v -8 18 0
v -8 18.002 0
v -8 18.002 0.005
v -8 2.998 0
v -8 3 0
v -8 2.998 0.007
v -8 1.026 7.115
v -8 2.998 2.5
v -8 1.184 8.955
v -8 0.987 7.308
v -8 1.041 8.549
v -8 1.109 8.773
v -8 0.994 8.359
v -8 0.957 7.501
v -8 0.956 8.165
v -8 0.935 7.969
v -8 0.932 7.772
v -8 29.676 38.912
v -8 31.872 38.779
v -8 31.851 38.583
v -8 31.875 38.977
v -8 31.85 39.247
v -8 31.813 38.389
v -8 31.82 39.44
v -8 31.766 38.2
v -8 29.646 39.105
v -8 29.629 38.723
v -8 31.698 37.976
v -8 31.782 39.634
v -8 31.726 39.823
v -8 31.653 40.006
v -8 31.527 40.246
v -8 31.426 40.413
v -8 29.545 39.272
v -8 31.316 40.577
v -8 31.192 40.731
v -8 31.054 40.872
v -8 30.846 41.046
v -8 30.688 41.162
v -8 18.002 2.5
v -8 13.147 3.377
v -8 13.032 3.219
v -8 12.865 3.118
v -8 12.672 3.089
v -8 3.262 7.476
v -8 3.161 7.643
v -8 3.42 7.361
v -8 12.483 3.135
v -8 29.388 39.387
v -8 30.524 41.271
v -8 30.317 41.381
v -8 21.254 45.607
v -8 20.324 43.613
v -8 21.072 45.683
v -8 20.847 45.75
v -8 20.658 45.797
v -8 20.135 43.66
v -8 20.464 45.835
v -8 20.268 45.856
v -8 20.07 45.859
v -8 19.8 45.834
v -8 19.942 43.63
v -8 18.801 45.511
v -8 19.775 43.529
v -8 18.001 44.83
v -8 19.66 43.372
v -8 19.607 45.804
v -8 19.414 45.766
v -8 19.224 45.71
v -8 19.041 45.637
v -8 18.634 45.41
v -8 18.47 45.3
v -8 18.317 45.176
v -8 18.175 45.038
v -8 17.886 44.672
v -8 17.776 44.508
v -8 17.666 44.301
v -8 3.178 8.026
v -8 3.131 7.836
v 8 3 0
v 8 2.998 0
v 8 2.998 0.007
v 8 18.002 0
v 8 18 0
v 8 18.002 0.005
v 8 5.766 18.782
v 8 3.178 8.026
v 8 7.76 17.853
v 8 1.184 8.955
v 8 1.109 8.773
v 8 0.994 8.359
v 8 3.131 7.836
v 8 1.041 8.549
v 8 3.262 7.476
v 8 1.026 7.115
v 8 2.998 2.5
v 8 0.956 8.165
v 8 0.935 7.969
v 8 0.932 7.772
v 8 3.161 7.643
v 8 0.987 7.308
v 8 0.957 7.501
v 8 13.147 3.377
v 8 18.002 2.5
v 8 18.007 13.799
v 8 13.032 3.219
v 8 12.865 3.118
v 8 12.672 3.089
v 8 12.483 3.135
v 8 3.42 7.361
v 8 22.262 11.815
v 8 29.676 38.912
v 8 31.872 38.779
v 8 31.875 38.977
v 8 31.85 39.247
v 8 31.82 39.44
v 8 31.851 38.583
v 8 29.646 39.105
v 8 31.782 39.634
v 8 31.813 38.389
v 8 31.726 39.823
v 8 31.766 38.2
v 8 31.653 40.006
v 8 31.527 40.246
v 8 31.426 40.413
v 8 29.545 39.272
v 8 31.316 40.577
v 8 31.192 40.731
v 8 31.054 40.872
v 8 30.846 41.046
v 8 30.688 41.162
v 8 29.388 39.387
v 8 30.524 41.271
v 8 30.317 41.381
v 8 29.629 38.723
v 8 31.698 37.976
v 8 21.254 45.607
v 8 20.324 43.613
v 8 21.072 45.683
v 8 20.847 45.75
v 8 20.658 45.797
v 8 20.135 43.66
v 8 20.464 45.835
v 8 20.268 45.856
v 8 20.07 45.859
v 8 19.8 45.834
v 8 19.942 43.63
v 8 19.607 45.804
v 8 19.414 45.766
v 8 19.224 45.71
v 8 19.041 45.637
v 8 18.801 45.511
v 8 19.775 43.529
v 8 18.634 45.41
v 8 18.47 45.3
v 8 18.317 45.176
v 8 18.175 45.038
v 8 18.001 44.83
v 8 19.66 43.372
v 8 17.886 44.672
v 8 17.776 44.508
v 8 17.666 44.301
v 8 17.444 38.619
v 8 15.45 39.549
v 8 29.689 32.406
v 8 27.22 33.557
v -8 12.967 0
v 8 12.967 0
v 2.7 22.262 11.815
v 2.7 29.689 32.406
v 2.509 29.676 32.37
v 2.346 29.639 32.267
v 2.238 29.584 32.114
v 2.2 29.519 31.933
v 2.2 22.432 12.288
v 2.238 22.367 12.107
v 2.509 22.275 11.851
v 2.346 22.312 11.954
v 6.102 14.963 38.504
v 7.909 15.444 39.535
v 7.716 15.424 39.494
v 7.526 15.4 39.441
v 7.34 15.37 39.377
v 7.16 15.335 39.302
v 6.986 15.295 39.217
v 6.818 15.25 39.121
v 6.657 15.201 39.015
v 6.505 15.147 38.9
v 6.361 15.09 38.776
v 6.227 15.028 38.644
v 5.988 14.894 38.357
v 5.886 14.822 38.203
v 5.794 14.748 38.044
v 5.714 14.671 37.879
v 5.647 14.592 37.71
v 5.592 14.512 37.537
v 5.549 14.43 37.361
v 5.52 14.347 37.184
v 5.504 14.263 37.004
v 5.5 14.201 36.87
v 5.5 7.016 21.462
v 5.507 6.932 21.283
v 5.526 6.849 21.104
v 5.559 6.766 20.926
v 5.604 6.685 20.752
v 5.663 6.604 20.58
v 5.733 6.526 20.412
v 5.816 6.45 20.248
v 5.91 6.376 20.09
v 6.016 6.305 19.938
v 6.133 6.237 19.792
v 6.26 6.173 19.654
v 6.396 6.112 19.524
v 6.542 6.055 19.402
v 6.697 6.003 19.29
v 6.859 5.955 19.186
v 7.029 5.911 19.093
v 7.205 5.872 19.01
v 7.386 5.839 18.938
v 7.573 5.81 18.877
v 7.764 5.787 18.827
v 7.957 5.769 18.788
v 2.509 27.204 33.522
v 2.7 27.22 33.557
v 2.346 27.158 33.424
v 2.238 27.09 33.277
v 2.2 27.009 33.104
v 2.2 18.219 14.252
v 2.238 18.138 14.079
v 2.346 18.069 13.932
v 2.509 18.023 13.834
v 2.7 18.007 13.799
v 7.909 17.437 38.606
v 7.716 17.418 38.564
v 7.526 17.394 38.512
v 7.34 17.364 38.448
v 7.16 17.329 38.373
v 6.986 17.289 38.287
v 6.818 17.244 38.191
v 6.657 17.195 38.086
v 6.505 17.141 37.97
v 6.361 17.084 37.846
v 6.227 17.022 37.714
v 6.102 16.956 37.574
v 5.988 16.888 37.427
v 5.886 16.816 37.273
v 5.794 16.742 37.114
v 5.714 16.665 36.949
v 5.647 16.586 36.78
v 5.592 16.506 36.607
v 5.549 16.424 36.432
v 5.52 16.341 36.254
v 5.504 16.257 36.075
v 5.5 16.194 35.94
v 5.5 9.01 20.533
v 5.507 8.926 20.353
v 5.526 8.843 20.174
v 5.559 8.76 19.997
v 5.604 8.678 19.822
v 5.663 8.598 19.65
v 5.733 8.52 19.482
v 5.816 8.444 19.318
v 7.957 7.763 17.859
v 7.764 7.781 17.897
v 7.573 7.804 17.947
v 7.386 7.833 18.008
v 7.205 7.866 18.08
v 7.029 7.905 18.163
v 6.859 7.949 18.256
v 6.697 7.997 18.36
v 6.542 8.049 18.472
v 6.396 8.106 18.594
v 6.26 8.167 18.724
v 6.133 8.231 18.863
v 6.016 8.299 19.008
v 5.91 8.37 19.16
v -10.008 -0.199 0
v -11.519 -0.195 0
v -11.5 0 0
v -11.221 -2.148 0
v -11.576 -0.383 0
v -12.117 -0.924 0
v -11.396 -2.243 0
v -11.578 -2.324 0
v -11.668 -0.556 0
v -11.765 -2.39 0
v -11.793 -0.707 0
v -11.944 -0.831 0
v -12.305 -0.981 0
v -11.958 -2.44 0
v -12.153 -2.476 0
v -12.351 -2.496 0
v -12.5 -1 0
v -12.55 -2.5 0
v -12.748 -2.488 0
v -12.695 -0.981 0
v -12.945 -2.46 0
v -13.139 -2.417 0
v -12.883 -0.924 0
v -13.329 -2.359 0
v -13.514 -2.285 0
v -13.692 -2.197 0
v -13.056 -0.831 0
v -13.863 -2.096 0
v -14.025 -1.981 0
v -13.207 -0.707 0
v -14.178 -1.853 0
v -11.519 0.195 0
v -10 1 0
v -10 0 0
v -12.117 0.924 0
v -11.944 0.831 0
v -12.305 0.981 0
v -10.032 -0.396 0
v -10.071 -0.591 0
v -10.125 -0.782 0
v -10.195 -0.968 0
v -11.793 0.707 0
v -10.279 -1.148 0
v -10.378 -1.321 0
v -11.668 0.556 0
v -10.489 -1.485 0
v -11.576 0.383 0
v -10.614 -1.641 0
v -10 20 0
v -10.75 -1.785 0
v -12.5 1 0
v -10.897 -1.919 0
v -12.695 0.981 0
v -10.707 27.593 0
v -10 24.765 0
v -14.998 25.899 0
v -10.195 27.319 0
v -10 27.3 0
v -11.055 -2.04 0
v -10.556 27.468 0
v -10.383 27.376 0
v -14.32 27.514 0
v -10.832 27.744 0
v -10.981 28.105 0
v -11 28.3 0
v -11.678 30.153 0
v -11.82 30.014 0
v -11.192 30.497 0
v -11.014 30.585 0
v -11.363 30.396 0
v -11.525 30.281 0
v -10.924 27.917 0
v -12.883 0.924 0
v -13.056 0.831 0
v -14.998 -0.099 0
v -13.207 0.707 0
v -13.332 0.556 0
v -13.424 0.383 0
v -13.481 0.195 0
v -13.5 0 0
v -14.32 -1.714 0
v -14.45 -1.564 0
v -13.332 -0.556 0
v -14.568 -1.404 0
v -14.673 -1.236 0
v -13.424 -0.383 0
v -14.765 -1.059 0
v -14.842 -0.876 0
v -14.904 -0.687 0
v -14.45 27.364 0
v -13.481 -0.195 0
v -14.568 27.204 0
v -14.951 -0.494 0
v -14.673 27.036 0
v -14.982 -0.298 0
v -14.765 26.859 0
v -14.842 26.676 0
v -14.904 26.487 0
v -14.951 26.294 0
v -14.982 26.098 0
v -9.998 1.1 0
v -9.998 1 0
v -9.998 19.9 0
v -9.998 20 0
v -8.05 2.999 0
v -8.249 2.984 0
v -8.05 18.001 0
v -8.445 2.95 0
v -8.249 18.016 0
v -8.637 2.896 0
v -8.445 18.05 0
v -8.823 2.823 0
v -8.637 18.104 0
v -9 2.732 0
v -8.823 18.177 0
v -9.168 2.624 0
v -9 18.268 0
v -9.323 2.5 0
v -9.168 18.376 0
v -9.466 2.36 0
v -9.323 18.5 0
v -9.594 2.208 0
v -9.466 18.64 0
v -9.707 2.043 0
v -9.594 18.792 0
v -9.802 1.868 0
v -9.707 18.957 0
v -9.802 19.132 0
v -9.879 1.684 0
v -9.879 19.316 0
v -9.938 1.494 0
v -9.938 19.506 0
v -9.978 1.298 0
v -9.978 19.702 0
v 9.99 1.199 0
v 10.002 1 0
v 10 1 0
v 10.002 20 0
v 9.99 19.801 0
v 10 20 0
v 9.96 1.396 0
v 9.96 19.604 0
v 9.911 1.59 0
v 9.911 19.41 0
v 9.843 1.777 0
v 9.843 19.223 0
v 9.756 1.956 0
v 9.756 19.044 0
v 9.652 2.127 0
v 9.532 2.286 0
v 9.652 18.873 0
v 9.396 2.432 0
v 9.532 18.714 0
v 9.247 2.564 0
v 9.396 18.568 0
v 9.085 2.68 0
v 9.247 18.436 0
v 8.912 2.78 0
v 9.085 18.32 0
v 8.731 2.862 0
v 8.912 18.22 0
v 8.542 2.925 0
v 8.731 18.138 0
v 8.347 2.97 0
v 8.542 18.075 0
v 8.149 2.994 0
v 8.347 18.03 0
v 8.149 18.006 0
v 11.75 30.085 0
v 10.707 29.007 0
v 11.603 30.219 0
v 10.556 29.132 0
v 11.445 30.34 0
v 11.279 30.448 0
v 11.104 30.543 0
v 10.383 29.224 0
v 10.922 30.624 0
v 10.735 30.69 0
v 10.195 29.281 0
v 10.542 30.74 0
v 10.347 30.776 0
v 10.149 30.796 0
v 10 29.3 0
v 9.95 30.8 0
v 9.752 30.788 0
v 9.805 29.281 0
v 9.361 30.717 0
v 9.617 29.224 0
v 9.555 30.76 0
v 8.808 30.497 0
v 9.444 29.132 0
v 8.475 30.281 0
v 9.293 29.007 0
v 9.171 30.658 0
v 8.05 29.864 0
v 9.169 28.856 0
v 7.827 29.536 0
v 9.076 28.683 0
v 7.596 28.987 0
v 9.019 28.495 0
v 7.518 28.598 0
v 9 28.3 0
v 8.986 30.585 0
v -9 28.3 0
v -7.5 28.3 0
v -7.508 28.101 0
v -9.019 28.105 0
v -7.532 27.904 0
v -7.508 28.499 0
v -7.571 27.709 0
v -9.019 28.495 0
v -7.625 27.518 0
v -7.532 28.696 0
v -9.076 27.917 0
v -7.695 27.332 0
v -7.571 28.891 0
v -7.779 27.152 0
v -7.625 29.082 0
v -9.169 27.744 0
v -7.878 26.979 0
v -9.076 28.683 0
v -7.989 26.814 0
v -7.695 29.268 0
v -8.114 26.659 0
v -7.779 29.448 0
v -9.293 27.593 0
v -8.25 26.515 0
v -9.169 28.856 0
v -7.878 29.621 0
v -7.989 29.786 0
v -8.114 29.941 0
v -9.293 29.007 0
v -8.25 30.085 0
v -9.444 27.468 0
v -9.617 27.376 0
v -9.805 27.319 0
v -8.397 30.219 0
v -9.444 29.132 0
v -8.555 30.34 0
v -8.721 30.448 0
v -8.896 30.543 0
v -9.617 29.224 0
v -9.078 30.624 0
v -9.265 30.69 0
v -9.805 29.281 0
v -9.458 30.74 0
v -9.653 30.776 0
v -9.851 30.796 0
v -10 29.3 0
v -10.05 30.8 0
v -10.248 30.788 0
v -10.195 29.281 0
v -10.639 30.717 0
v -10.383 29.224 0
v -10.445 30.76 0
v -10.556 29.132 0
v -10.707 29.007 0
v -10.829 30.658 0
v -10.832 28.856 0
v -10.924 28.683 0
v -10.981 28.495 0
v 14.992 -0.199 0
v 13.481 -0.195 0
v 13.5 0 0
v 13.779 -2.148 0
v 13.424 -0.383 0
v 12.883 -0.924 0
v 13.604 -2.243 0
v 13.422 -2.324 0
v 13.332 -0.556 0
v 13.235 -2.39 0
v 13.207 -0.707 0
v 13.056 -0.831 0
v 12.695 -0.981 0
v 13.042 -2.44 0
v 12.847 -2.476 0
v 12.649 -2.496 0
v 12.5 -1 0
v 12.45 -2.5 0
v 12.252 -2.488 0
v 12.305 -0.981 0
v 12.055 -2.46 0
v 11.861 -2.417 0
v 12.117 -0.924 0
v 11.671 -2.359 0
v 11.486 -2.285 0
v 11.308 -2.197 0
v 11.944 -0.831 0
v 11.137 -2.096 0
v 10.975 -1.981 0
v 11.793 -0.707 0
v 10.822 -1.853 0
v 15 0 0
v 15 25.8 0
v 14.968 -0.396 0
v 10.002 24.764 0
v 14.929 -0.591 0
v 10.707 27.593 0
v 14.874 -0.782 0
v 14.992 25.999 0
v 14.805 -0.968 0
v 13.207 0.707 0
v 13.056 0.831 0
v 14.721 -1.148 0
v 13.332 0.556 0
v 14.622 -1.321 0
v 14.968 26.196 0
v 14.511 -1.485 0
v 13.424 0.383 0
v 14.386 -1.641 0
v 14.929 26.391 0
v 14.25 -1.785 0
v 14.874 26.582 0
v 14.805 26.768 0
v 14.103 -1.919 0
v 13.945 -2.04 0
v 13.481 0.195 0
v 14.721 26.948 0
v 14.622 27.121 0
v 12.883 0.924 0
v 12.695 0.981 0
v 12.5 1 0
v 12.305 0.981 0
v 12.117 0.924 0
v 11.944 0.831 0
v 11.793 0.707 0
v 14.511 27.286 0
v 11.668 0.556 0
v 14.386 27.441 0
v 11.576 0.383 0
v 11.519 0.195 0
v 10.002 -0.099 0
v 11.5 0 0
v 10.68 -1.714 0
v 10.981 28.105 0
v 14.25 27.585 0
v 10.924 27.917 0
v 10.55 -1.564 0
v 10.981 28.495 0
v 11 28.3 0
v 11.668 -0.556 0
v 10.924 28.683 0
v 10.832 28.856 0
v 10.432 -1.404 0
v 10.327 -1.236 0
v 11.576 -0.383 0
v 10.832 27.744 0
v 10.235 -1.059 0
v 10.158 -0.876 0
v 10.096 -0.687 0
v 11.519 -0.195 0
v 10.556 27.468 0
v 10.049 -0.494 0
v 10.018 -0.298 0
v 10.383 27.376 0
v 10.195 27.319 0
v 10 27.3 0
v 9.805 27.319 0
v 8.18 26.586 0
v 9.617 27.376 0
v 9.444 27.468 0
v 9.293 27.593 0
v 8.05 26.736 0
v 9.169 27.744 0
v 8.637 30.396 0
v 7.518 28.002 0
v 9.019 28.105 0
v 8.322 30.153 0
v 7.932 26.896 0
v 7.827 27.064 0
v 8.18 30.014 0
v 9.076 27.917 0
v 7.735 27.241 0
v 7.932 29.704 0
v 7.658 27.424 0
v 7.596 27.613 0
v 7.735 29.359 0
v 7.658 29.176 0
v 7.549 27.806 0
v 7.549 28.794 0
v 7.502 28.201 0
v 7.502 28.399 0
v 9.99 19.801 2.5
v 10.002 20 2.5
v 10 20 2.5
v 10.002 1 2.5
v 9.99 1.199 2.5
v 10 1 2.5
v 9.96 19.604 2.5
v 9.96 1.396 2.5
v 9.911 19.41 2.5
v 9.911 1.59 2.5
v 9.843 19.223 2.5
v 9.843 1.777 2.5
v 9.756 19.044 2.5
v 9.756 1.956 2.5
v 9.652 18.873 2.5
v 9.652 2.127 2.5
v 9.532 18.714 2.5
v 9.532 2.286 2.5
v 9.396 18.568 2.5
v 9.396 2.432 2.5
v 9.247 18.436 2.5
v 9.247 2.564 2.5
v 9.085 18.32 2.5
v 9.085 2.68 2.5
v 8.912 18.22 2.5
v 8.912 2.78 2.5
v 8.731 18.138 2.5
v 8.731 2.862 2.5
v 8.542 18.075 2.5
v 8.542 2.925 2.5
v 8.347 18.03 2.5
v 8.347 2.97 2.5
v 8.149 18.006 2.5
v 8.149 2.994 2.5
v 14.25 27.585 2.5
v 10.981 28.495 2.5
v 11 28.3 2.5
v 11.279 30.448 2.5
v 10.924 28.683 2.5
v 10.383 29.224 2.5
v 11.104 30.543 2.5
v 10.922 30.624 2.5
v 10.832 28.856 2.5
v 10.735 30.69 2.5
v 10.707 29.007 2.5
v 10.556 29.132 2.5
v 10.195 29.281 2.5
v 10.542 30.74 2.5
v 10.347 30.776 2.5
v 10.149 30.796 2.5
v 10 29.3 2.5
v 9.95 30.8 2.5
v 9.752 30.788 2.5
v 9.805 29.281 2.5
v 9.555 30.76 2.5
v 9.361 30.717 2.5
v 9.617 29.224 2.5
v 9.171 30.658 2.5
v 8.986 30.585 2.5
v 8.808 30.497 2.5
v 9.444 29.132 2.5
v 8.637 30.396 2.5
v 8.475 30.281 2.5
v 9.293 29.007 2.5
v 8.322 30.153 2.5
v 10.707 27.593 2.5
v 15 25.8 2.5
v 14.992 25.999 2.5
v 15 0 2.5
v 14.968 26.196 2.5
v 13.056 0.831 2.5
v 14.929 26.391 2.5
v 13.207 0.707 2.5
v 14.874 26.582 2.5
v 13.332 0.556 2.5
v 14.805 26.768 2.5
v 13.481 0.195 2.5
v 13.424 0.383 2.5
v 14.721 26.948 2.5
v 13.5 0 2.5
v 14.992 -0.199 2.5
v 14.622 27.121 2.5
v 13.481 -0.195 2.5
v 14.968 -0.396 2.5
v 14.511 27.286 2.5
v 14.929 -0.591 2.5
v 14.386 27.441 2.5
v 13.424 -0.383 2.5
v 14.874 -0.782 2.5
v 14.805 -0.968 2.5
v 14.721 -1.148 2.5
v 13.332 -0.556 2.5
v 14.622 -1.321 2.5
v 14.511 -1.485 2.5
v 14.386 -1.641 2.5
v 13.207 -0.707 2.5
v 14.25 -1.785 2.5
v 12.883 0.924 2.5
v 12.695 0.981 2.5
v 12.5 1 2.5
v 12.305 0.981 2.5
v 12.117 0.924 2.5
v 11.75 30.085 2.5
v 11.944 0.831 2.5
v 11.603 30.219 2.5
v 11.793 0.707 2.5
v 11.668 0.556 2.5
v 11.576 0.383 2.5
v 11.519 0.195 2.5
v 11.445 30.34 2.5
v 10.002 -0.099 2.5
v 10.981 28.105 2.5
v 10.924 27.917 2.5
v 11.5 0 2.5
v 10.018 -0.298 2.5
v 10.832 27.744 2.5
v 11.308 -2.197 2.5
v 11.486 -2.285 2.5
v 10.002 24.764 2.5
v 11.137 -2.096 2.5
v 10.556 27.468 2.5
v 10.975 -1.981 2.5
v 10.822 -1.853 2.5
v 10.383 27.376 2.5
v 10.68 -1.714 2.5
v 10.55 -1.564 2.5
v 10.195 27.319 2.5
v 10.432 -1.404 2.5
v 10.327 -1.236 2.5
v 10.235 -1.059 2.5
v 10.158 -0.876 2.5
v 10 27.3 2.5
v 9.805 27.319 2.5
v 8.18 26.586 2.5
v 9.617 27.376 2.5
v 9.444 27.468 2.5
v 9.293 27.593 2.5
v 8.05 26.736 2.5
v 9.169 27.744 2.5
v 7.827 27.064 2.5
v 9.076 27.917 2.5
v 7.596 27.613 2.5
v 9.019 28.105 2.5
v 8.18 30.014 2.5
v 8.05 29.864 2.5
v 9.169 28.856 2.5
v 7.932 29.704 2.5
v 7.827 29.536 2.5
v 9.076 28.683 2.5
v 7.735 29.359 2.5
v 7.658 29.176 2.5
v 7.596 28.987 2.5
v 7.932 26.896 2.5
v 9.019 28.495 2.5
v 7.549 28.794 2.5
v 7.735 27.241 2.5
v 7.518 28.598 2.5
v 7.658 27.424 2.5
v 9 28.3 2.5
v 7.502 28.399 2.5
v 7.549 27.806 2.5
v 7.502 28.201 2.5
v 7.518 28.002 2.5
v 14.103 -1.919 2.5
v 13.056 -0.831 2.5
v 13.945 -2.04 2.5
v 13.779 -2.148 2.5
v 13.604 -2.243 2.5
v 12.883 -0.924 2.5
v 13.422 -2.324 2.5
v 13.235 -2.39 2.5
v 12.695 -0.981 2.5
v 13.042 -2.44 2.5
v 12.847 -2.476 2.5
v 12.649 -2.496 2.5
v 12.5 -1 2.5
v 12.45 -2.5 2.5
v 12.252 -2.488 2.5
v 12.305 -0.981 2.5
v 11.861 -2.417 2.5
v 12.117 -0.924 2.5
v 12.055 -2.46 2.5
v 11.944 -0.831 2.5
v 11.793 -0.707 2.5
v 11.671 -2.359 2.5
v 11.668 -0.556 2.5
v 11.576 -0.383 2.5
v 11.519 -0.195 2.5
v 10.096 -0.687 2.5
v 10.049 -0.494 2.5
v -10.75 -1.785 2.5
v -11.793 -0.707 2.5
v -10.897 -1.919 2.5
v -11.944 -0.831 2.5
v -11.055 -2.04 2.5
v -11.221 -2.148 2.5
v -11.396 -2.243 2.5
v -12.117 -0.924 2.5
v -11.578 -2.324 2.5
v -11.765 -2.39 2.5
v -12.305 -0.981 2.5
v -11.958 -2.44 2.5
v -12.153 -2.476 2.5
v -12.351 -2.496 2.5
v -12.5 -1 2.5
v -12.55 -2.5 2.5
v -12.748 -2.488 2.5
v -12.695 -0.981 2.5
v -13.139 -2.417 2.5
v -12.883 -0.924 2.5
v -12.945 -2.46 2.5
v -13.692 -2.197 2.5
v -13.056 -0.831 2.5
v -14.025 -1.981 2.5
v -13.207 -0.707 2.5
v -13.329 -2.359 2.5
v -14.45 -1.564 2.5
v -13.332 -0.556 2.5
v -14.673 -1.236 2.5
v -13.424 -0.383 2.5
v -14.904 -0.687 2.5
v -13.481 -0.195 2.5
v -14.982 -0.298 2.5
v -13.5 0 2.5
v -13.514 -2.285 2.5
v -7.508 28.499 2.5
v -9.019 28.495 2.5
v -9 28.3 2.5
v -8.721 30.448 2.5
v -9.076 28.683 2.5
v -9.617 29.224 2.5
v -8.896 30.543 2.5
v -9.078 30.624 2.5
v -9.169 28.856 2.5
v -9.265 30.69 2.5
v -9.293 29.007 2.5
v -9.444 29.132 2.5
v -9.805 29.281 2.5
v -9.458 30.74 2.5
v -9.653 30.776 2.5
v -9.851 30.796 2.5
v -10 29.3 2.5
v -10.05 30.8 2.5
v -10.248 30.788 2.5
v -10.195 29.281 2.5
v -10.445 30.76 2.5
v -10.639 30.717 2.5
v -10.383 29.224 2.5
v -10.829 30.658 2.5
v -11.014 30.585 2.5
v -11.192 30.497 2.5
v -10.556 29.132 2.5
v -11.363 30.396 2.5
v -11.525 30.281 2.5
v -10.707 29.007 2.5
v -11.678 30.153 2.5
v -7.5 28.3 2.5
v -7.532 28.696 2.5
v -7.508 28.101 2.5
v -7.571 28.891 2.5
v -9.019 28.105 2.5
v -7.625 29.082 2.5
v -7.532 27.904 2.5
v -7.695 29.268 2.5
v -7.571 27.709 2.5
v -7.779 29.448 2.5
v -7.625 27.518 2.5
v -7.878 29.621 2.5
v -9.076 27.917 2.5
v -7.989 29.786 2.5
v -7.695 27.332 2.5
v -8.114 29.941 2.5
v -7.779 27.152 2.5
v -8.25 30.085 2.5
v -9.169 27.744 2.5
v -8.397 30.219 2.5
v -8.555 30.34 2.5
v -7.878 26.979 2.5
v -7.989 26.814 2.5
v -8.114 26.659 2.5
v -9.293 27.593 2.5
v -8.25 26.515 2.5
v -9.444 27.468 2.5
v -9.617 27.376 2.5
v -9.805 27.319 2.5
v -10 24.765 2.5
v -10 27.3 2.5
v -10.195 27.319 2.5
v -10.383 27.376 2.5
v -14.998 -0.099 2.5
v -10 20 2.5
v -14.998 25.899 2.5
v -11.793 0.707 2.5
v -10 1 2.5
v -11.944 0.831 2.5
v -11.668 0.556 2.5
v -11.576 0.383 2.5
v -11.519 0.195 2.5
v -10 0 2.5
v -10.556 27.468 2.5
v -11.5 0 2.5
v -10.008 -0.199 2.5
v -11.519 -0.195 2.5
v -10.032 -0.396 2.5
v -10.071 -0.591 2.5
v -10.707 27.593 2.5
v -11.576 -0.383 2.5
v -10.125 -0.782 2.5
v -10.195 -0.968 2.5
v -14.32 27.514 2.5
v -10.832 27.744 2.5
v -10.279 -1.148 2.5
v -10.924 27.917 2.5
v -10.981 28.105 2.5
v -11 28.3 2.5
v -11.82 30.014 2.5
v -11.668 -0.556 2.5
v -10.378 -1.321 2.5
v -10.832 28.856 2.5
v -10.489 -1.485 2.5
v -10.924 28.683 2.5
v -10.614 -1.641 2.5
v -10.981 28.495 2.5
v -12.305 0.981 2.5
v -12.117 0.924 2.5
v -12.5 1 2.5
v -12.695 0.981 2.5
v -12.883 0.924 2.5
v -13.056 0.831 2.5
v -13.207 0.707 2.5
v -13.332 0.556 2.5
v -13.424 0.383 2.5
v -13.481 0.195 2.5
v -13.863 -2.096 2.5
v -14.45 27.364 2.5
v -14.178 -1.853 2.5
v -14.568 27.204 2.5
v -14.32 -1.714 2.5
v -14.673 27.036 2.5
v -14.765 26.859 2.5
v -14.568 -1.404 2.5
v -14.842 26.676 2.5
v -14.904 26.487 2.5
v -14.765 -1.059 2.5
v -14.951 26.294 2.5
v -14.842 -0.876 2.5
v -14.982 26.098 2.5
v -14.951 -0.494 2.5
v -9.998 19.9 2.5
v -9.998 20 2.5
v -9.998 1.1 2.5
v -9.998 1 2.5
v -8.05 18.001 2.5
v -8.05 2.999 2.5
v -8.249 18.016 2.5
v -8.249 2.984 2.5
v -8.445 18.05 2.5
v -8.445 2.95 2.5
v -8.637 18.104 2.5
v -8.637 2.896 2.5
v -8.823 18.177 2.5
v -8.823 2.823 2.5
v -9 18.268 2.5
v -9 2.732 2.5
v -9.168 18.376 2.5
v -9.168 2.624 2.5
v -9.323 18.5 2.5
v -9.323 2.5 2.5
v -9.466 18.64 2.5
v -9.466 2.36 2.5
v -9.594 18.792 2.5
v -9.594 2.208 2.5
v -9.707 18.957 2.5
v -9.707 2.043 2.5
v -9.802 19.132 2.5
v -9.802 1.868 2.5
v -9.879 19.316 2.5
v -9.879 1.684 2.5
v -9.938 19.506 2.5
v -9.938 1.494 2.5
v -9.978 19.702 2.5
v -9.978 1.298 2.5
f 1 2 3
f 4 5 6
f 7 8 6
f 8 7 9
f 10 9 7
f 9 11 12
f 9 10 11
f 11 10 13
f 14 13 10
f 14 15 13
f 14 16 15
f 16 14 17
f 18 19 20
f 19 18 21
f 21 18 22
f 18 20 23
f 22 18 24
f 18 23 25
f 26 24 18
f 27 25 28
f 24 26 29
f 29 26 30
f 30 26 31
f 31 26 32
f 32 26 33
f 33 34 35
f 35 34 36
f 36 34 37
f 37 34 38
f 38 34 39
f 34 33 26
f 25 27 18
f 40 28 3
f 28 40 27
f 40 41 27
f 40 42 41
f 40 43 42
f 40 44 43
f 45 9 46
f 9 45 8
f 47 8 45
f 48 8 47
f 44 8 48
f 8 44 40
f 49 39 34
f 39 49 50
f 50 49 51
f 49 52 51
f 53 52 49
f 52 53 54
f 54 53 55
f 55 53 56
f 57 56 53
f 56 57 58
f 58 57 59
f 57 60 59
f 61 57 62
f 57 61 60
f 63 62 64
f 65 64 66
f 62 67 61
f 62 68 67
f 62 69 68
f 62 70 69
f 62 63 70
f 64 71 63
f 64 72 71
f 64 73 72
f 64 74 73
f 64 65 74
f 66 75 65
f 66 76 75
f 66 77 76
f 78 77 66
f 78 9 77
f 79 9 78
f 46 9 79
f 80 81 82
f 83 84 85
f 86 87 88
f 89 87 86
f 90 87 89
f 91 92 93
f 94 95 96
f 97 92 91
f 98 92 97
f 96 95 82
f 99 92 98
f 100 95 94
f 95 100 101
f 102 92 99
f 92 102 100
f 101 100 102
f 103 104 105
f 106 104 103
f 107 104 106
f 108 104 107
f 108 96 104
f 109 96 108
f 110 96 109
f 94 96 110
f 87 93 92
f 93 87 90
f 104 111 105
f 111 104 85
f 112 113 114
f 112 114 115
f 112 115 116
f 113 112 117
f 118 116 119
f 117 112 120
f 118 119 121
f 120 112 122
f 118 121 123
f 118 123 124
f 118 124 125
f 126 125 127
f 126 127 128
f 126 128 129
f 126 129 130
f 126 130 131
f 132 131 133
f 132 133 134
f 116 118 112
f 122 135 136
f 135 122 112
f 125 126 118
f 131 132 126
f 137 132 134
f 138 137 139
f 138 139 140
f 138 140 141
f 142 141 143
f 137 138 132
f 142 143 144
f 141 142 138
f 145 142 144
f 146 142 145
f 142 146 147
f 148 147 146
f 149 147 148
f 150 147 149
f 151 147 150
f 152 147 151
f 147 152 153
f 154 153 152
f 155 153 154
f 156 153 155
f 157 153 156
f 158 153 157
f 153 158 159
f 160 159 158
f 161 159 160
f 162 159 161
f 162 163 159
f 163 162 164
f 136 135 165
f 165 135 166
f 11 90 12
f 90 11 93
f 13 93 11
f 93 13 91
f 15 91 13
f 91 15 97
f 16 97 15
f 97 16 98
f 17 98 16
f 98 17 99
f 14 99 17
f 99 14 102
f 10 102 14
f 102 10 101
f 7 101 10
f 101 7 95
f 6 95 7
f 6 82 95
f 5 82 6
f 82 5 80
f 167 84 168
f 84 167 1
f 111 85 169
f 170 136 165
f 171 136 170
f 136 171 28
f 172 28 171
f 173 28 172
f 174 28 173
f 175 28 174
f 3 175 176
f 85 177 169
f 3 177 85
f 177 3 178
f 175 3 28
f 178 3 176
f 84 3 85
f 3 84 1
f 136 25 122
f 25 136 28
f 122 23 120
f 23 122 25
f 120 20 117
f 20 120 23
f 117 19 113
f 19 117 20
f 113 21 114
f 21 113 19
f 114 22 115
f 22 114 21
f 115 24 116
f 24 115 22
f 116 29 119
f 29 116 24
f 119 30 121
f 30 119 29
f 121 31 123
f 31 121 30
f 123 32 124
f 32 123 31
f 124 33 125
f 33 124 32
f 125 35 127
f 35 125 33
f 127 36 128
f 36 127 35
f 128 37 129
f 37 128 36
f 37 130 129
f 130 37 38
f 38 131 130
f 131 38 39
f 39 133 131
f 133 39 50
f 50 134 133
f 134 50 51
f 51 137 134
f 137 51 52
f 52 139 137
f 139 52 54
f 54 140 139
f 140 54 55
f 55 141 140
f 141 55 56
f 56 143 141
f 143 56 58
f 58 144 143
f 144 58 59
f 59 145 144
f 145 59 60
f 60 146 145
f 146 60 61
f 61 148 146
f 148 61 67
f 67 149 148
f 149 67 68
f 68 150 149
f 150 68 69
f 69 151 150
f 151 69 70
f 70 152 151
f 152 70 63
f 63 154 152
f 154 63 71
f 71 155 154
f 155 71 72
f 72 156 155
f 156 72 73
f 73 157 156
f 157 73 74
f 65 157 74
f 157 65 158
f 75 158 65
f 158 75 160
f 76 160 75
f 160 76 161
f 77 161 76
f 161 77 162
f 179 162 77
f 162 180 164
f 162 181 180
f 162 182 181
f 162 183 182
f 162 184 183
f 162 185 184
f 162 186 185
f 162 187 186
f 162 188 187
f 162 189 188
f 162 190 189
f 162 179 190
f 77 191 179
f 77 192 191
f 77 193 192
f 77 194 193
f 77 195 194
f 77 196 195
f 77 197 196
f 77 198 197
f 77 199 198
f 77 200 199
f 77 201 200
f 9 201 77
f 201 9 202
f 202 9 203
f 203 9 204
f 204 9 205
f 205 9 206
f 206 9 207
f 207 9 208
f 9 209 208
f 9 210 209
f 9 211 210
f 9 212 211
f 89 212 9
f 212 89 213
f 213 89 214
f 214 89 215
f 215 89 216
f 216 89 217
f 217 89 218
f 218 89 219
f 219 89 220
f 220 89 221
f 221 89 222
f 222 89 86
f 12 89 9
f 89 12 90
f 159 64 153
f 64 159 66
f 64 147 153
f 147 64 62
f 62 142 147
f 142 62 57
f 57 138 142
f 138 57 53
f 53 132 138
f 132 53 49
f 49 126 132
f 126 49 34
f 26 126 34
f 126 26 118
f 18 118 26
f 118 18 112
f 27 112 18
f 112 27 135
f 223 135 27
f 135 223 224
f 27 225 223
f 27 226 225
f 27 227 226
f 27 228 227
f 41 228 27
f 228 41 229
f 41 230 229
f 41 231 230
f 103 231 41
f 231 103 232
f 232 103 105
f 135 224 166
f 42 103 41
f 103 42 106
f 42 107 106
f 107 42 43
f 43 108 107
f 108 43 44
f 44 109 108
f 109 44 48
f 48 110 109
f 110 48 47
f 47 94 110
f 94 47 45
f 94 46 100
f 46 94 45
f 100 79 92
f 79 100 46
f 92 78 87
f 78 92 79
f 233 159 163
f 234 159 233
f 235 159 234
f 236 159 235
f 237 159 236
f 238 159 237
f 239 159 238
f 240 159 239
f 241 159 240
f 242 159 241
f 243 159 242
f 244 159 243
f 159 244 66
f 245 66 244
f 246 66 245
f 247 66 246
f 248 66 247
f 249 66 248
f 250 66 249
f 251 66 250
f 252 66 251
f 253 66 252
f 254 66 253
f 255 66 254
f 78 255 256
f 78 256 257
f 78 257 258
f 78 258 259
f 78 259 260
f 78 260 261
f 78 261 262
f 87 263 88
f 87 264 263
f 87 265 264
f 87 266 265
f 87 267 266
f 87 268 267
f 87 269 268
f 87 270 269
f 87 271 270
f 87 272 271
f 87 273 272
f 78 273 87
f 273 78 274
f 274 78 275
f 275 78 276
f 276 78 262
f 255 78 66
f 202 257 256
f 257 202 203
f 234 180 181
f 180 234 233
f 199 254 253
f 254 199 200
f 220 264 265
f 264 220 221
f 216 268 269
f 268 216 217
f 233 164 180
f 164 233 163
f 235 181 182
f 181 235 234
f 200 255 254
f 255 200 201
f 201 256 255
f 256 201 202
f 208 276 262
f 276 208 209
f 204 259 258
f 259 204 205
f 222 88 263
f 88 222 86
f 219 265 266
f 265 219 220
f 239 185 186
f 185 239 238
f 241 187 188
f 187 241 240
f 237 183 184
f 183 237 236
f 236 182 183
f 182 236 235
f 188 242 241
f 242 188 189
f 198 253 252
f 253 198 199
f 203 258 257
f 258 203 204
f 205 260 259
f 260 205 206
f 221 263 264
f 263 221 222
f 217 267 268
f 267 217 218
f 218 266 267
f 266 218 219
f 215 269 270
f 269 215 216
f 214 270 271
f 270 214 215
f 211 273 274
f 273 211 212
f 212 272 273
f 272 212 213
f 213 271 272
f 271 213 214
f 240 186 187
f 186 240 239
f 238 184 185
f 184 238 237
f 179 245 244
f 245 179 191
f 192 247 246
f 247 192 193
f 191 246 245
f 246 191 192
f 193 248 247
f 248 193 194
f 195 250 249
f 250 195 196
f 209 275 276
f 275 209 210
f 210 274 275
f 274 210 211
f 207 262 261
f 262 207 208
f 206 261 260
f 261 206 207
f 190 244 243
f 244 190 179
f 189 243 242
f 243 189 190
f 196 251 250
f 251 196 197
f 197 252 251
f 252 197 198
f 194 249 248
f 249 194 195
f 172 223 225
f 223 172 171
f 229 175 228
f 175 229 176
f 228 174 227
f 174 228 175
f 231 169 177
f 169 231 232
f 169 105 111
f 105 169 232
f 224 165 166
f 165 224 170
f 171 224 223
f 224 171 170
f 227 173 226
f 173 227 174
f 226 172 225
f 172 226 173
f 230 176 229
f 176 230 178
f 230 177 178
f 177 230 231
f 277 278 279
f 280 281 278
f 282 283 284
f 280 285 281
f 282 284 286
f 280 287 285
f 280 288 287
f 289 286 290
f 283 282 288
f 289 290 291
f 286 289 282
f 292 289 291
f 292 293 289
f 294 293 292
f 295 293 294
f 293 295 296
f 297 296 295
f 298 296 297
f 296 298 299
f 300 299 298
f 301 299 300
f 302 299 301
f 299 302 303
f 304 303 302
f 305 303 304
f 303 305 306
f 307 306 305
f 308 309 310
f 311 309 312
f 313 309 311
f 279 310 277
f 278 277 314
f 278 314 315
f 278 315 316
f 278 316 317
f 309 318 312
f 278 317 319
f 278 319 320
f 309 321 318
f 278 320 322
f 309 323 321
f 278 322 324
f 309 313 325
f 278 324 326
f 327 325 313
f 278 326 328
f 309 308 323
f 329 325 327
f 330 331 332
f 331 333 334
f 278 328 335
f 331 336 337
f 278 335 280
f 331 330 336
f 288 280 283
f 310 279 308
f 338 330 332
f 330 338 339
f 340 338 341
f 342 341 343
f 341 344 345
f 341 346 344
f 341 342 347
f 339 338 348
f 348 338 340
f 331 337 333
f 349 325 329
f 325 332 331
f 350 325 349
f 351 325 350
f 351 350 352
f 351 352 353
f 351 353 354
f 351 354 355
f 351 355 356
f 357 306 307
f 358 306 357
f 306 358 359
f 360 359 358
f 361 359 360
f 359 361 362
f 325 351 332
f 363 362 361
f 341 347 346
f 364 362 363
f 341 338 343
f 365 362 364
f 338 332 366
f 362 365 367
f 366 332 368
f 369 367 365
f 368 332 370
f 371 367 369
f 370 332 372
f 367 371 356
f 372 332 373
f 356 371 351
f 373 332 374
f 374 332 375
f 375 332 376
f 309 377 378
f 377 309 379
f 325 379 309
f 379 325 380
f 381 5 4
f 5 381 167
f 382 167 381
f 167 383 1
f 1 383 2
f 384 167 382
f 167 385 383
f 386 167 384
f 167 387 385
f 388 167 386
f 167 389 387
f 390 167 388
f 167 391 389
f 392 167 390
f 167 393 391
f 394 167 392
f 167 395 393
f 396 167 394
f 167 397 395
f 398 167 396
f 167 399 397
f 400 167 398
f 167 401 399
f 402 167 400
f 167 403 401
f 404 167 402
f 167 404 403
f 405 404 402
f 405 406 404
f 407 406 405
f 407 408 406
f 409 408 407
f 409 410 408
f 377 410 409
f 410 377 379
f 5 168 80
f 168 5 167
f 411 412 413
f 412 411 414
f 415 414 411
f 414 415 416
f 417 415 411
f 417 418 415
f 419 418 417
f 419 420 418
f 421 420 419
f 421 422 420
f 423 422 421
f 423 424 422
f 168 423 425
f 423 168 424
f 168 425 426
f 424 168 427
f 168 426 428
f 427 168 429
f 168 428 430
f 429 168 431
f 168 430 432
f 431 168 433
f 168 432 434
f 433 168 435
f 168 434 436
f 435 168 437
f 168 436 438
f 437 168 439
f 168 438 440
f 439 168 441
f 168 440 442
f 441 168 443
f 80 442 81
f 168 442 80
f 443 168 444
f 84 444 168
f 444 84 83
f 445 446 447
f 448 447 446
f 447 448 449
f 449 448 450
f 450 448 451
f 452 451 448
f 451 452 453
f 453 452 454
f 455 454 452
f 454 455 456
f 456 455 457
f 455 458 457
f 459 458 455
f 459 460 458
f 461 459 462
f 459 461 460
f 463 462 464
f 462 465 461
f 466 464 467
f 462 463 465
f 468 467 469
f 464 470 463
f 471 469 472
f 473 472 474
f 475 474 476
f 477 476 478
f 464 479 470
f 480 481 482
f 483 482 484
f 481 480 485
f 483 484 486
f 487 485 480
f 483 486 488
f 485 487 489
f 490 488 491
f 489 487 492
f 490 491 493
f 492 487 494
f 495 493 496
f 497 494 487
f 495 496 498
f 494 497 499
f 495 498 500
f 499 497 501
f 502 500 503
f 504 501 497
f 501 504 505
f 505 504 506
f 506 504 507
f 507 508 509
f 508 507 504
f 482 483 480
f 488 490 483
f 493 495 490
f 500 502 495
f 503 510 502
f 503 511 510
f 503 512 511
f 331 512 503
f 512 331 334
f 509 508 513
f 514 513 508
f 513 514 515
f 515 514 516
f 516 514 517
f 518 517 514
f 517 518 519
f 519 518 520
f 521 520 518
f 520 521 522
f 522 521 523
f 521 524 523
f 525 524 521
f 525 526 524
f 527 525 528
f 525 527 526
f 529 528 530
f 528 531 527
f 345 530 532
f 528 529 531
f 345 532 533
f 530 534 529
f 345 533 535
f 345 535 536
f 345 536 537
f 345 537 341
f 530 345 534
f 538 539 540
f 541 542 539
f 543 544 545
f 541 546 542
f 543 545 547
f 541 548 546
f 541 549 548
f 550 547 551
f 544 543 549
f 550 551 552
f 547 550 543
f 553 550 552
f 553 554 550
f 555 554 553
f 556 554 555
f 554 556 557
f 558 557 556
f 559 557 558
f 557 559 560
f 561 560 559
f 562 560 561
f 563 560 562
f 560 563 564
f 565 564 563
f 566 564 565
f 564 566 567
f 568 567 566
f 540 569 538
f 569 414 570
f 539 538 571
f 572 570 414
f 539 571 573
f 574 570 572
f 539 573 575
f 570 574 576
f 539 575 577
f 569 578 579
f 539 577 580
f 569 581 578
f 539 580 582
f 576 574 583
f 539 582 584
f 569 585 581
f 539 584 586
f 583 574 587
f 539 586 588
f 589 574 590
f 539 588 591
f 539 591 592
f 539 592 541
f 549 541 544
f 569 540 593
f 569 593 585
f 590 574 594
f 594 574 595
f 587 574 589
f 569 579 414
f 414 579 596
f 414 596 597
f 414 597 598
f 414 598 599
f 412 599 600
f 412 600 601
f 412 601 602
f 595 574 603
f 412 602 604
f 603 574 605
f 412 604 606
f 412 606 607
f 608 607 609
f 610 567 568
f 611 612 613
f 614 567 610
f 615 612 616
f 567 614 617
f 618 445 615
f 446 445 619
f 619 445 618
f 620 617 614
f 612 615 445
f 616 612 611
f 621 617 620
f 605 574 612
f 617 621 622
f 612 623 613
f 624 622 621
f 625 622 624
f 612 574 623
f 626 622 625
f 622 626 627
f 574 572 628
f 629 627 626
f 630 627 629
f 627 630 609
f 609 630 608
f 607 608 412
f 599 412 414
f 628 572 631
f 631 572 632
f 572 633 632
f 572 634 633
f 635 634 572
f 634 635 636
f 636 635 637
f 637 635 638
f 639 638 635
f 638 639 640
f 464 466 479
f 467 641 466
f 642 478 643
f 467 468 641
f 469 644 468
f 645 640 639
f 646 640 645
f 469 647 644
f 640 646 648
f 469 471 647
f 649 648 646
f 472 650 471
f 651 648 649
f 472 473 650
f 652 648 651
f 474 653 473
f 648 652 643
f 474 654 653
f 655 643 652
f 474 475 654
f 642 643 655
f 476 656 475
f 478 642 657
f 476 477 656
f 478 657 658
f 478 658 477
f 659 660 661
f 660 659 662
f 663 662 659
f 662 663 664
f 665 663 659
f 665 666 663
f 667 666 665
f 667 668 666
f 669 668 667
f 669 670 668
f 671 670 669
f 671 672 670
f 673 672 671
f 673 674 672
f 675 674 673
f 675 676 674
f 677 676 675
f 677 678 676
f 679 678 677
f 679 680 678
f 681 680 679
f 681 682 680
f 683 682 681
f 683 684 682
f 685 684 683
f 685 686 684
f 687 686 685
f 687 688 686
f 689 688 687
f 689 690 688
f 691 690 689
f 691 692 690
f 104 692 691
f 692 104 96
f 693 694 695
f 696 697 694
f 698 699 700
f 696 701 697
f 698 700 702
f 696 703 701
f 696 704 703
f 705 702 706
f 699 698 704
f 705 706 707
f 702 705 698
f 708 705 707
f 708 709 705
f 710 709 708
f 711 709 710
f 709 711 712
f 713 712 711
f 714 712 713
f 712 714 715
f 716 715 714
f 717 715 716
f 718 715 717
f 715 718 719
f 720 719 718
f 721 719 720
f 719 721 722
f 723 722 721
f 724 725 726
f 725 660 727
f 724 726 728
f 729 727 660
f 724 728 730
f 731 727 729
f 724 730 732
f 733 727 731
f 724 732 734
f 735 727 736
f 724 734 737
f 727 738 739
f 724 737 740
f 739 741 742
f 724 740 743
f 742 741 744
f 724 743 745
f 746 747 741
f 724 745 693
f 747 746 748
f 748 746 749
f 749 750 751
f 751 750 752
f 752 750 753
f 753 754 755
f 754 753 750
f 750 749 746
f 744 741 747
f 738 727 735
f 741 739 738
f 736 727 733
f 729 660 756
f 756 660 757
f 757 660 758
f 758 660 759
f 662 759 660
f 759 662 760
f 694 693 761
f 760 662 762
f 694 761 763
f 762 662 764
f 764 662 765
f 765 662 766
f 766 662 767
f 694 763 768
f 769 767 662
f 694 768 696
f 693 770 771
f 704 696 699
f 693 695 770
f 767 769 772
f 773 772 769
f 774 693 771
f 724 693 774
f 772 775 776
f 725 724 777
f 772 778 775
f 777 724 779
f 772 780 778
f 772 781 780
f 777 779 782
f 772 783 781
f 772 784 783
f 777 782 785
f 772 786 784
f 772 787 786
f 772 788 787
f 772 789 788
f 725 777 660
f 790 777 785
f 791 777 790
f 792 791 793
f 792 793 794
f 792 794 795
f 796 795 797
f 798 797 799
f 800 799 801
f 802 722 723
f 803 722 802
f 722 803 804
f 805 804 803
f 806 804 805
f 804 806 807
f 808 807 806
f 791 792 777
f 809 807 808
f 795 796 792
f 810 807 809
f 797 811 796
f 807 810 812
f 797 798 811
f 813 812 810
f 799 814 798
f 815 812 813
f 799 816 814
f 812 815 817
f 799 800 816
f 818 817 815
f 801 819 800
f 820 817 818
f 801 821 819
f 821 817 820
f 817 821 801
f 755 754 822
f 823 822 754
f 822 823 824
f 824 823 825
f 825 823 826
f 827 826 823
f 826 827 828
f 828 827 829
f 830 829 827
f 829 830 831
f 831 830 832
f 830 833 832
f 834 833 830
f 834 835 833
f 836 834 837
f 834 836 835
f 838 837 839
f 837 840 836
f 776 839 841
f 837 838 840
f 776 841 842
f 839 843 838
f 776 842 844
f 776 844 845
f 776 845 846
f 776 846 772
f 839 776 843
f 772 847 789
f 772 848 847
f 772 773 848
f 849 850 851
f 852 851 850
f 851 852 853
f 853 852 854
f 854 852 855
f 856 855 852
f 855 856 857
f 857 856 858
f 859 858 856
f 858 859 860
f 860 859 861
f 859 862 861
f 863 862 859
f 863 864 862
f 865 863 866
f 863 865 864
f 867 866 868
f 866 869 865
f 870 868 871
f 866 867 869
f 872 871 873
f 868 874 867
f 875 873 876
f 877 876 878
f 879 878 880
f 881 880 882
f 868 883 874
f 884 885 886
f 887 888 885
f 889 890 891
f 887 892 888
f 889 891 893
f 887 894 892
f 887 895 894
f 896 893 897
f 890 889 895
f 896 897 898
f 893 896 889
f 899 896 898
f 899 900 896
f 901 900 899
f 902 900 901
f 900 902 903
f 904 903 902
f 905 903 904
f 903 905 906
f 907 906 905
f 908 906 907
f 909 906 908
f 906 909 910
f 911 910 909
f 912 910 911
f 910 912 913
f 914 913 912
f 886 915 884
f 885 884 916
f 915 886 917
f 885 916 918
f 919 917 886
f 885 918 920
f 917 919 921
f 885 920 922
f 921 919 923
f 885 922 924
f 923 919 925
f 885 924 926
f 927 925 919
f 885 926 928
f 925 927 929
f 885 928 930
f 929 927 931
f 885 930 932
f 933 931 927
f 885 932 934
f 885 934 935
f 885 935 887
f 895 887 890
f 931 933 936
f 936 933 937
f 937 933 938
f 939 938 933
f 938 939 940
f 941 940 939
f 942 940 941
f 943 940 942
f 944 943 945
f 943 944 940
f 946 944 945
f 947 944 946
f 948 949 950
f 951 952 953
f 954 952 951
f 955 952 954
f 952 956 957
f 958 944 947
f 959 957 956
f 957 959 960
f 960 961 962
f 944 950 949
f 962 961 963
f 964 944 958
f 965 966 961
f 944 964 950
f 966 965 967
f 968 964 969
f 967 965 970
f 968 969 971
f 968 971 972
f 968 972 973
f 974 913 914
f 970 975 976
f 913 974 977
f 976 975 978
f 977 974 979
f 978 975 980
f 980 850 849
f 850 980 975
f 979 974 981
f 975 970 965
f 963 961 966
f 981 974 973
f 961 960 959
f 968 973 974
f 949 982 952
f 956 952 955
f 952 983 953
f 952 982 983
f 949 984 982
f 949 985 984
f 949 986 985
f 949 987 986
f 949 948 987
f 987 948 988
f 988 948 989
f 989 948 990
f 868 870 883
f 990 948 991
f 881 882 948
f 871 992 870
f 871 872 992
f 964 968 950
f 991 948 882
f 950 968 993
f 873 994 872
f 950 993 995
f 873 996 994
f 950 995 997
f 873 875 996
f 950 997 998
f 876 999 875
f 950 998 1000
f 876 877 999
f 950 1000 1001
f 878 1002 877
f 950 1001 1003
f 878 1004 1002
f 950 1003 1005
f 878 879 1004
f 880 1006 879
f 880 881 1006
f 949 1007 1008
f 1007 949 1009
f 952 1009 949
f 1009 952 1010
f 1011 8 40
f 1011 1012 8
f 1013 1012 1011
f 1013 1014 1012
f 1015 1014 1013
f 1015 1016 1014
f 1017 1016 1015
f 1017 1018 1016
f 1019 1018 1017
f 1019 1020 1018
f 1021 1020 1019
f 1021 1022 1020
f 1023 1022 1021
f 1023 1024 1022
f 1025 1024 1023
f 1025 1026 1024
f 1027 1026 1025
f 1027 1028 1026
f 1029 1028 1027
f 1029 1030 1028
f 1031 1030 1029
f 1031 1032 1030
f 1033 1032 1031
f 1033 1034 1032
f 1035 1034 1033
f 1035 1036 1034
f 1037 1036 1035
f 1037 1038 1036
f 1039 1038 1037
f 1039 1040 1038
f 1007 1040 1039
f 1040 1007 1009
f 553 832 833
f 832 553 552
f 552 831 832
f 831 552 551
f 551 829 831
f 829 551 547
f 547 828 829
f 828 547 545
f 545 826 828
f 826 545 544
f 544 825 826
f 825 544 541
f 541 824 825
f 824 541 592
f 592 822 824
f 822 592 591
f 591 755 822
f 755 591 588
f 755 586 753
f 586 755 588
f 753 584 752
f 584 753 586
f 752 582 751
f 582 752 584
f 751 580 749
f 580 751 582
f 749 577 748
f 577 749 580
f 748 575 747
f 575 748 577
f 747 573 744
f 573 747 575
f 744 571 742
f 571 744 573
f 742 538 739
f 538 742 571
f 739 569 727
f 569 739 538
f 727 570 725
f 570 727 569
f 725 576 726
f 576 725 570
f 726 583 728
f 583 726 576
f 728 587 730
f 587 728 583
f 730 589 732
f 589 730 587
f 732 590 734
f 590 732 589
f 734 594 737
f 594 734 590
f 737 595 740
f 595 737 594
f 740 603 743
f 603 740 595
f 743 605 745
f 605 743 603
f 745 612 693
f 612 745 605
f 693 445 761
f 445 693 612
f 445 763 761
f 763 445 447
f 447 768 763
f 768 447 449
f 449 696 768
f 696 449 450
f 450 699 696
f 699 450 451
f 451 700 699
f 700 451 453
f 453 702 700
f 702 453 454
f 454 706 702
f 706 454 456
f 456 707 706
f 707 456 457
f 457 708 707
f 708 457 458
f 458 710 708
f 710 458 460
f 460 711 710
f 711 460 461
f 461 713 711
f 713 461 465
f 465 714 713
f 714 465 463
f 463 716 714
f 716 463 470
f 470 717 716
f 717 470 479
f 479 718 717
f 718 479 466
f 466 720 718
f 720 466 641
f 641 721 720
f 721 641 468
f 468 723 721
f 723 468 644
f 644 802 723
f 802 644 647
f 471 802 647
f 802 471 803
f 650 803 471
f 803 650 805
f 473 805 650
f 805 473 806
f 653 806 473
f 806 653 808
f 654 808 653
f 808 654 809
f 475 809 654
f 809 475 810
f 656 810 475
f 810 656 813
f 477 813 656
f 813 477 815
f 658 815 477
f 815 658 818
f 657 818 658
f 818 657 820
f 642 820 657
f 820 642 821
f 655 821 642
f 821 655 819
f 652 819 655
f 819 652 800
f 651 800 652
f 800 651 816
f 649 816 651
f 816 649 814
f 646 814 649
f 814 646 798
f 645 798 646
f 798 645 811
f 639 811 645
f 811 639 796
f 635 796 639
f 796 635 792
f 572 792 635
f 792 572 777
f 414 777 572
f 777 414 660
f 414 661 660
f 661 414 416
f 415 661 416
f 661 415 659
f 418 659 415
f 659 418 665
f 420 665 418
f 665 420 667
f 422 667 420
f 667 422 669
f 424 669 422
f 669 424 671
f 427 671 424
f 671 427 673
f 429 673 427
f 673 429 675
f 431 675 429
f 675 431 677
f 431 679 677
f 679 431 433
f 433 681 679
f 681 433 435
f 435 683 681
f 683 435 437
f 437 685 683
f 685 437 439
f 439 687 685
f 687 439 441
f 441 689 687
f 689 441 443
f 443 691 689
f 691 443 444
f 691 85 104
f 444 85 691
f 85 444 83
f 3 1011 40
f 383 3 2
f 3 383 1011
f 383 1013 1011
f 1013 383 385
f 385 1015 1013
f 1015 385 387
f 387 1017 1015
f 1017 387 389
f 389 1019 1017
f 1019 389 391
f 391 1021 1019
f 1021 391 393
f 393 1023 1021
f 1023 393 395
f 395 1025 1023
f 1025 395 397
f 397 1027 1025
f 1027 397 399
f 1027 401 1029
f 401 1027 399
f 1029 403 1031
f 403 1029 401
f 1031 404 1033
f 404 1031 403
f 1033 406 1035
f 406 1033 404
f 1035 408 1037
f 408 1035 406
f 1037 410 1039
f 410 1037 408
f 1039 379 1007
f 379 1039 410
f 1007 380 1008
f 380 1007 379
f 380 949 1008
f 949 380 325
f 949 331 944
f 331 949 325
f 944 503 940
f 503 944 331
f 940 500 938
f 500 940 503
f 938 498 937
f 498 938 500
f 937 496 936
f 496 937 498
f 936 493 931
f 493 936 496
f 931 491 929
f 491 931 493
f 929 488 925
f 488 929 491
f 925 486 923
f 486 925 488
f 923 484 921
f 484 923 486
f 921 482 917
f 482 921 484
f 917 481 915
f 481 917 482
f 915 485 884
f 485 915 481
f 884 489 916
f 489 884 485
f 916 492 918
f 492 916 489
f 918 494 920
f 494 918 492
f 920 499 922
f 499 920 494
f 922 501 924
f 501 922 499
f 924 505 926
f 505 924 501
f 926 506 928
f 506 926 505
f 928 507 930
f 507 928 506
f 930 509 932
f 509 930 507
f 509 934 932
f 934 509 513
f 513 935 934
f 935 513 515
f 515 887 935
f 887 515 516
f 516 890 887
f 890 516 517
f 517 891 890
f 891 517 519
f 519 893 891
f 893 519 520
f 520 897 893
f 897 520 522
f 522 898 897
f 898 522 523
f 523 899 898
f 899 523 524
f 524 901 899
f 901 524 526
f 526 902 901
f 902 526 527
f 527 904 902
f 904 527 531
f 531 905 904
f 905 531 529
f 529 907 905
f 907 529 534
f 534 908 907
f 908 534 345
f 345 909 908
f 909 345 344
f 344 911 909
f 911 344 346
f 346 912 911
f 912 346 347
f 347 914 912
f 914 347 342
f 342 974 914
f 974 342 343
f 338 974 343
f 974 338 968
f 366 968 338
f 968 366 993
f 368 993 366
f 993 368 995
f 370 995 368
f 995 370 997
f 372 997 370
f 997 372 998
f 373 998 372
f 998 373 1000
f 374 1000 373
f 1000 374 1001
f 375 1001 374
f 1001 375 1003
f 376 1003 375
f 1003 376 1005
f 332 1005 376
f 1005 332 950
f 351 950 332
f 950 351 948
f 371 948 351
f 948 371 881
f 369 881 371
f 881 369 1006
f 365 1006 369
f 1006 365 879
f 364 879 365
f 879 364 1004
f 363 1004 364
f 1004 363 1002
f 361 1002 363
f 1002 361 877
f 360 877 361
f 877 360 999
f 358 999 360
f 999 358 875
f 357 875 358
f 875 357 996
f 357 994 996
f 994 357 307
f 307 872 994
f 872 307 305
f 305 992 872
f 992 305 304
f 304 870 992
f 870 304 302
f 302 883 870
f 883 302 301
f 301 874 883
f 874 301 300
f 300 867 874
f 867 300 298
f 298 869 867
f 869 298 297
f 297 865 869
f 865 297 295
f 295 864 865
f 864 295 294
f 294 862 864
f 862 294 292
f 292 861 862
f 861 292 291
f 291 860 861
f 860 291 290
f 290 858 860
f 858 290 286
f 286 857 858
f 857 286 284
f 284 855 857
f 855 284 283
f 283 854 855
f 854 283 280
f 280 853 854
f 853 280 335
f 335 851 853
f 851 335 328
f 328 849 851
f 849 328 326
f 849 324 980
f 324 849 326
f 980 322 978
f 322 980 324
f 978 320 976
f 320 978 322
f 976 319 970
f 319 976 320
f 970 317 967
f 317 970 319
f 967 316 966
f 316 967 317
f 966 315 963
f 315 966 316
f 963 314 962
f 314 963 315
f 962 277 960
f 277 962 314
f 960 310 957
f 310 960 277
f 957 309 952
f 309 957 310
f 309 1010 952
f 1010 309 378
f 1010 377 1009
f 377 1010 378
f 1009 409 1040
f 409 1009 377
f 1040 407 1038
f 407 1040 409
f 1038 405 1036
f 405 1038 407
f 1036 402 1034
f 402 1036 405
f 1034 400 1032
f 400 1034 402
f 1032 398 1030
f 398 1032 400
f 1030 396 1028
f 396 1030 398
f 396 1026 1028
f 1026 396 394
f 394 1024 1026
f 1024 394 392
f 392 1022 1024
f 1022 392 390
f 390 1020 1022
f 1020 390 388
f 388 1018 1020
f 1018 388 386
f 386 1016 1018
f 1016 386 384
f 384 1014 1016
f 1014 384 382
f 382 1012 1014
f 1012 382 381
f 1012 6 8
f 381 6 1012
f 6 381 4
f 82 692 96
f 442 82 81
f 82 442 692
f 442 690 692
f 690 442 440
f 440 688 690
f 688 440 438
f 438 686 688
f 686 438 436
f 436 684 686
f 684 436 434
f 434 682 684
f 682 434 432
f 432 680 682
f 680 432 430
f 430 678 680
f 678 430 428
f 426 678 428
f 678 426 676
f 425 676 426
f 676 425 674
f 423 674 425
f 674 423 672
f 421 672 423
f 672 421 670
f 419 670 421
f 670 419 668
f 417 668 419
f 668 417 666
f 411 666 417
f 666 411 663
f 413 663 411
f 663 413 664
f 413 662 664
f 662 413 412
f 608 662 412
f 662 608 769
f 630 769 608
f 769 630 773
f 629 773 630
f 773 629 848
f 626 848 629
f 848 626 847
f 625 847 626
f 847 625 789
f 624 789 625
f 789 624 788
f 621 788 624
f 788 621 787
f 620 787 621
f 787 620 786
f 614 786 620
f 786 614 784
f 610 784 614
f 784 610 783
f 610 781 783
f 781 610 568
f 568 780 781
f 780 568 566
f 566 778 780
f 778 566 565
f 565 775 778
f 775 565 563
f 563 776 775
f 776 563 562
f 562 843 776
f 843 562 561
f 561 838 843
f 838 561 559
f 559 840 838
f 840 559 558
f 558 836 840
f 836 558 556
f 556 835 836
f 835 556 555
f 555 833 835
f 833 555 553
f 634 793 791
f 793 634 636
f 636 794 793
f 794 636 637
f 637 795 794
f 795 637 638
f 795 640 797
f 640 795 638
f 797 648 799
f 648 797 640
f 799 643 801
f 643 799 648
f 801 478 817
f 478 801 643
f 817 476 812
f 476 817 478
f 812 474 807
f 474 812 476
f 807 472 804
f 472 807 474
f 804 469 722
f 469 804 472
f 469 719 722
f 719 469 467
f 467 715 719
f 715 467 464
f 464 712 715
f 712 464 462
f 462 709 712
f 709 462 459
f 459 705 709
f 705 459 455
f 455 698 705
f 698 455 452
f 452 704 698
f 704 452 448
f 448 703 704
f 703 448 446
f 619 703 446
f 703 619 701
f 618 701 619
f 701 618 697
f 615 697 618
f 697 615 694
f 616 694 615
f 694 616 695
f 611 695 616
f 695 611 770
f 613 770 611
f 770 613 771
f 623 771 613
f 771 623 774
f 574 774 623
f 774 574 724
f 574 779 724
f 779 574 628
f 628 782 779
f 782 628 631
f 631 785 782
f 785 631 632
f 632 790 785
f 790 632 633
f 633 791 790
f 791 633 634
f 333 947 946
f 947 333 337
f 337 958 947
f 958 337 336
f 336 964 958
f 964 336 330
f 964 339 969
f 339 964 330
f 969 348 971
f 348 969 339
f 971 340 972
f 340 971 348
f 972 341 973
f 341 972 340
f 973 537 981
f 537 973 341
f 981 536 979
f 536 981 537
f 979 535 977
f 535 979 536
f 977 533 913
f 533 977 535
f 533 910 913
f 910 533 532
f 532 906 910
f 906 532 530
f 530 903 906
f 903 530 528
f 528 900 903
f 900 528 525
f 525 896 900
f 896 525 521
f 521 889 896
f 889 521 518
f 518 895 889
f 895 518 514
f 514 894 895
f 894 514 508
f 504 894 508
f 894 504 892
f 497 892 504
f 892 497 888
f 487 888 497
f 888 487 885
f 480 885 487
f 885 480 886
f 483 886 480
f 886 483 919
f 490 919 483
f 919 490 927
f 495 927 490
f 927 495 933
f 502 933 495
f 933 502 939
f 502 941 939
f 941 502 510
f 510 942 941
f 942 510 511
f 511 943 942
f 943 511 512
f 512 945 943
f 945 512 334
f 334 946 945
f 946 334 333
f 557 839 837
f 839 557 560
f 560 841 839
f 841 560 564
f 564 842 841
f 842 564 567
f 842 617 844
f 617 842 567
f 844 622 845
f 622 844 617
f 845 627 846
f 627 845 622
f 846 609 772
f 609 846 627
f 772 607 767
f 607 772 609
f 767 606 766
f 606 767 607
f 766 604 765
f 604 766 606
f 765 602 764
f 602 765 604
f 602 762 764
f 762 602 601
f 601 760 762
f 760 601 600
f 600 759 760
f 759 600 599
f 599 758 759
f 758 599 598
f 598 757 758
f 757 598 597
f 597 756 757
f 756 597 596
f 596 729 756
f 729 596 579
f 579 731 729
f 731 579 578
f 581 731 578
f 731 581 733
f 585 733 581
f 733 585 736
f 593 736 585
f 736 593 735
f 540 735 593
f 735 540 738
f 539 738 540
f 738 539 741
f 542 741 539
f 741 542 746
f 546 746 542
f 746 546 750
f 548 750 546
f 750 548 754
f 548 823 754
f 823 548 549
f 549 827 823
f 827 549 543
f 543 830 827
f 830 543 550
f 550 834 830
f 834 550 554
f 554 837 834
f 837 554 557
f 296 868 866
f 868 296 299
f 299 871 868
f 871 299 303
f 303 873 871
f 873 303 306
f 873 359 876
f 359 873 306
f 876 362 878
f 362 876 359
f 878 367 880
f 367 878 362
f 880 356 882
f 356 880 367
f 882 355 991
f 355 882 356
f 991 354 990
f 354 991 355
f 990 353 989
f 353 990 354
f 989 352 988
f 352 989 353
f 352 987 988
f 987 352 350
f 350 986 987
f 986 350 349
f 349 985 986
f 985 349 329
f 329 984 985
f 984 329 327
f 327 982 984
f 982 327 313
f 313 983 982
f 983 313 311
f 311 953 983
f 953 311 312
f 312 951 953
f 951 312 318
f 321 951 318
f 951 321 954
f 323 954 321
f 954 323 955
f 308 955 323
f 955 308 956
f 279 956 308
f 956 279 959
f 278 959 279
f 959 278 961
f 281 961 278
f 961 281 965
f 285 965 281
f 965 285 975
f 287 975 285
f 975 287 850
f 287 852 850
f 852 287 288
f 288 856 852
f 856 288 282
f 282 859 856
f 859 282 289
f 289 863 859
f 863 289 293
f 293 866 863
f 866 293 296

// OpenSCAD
// SMO 4K TPU camera mount for HGLRC Recon 4 FR frame

$fs = $preview ? 0.5 : 0.2;
$fa = $preview ? 10 : 2;

// base plate
h0 = 2.5;
w0 = 5;
d1 = 25;
d2 = 20;
l0 = 28.3;
s12 = (d1 - d2) / 2;
dh = 2;

br = 2; // bevel radius (on inner corners)

// Mount base dimensions
gl = 15;
gs = 3;

ch = 40.0;
cw = 11.0;
cr = 0.5;   // corner radius
mt = 2.2; // mount thickness
mw = 16;  // mount width

ma = 25; // mount angle (from vertical) 

mx = 14;
mz = 0.0; 

// lens front
cx = 60; // horizontal camera size to compute offset
lfw = 23;
lfh = 23;
lfr = 3; // radius
lfx = 1.5;
lfz = 11.3;

// lens back
lbw = 26.8;
lbh = 21.8;
lbr = 0.5; // radius
lbx = 1.0;
lbz = 12;

eps = 0.5;

m_ty = mx - (cw + 2 * mt) * cos(ma);
m_tz = (cw + 2 * mt) * sin(ma) + mz;

translate([0, m_ty, m_tz])
    rotate([-ma, 0, 0])
            mount();
          
//#mount2d_inner();            
//mount2d_outer();            
            
module mount2d() {
    difference() {
        hull() {
            mount2d_outer();
            mount2d_base();
        }
        mount2d_inner();
    }
}

module mount2d_outer() {
    offset(mt) mount2d_inner();
}

module mount2d_inner() {
    translate([cr - ch - mt, cr + mt])
        offset(cr) square([ch - 2*cr, cw - 2*cr]);
}

module mount2d_base() {
    rotate([0, 0, ma])
        translate([m_tz, -m_ty])
            translate([-h0, gs])
                square([h0, gl]);
}
 
//mount();

module mount() {
    difference() {
        translate([-mw / 2, 0, 0])
            rotate([90, 90, 90])
                linear_extrude(mw) {
                    mount2d();
                }
        #translate([lfr + (cx / 2 - lfw - lfx), mt + eps, lfr + mt + lfz])
            rotate([90, 0, 0])
                linear_extrude(mt + 2 * eps)
                    offset(lfr)
                        square([lfw - 2 * lfr, lfh - 2 * lfr]);
        #translate([lbr + (cx / 2 - lbw - lbx), cw + 4 * mt + eps, lbr + mt + lbz])
            rotate([90, 0, 0])
                linear_extrude(3 * mt + 2 * eps)
                    offset(lbr)
                        square([lbw - 2 * lbr, lbh - 2 * lbr]);
    }
}    

   
linear_extrude(h0) {
    difference() {
        union() {
            hull() {
                translate([d1 / 2, 0]) circle(d = w0);
                translate([d2 / 2 + s12, l0 - s12]) circle(d = w0);
            }
            hull() {
                translate([d2 / 2 + s12, l0 - s12]) circle(d = w0);
                translate([d2 / 2, l0]) circle(d = w0);
            }

            hull() {
                translate([-d1 / 2, 0]) circle(d = w0);
                translate([-d2 / 2 - s12, l0 - s12]) circle(d = w0);
            }
            hull() {
                translate([-d2 / 2 - s12, l0 - s12]) circle(d = w0);
                translate([-d2 / 2, l0]) circle(d = w0);
            }
            translate([-d1 / 2, gs])
                square([d1, gl]);
            translate([-d1 / 2 + w0 / 2, gs - br])
                difference() {
                    translate([-eps, 0]) square([br + eps, br + eps]);
                    translate([br, 0]) circle(r = br);
                }
            translate([d1 / 2 - w0 / 2 - br, gs - br])
                difference() {
                    translate([0, 0]) square([br + eps, br + eps]);
                    circle(r = br);
                }
            translate([-d1 / 2 + w0 / 2, gs + gl])
                difference() {
                    translate([-eps, -eps]) square([br + eps, br + eps]);
                    translate([br, br]) circle(r = br);
                }
            translate([d1 / 2 - w0 / 2 - br, gs + gl])
                difference() {
                    translate([0, -eps]) square([br + eps, br + eps]);
                    translate([0, br]) circle(r = br);
                }
        }
        translate([d1 / 2, 0]) circle(d = dh);
        translate([d2 / 2, l0]) circle(d = dh);
        translate([-d1 / 2, 0]) circle(d = dh);
        translate([-d2 / 2, l0]) circle(d = dh);
    }
} 
